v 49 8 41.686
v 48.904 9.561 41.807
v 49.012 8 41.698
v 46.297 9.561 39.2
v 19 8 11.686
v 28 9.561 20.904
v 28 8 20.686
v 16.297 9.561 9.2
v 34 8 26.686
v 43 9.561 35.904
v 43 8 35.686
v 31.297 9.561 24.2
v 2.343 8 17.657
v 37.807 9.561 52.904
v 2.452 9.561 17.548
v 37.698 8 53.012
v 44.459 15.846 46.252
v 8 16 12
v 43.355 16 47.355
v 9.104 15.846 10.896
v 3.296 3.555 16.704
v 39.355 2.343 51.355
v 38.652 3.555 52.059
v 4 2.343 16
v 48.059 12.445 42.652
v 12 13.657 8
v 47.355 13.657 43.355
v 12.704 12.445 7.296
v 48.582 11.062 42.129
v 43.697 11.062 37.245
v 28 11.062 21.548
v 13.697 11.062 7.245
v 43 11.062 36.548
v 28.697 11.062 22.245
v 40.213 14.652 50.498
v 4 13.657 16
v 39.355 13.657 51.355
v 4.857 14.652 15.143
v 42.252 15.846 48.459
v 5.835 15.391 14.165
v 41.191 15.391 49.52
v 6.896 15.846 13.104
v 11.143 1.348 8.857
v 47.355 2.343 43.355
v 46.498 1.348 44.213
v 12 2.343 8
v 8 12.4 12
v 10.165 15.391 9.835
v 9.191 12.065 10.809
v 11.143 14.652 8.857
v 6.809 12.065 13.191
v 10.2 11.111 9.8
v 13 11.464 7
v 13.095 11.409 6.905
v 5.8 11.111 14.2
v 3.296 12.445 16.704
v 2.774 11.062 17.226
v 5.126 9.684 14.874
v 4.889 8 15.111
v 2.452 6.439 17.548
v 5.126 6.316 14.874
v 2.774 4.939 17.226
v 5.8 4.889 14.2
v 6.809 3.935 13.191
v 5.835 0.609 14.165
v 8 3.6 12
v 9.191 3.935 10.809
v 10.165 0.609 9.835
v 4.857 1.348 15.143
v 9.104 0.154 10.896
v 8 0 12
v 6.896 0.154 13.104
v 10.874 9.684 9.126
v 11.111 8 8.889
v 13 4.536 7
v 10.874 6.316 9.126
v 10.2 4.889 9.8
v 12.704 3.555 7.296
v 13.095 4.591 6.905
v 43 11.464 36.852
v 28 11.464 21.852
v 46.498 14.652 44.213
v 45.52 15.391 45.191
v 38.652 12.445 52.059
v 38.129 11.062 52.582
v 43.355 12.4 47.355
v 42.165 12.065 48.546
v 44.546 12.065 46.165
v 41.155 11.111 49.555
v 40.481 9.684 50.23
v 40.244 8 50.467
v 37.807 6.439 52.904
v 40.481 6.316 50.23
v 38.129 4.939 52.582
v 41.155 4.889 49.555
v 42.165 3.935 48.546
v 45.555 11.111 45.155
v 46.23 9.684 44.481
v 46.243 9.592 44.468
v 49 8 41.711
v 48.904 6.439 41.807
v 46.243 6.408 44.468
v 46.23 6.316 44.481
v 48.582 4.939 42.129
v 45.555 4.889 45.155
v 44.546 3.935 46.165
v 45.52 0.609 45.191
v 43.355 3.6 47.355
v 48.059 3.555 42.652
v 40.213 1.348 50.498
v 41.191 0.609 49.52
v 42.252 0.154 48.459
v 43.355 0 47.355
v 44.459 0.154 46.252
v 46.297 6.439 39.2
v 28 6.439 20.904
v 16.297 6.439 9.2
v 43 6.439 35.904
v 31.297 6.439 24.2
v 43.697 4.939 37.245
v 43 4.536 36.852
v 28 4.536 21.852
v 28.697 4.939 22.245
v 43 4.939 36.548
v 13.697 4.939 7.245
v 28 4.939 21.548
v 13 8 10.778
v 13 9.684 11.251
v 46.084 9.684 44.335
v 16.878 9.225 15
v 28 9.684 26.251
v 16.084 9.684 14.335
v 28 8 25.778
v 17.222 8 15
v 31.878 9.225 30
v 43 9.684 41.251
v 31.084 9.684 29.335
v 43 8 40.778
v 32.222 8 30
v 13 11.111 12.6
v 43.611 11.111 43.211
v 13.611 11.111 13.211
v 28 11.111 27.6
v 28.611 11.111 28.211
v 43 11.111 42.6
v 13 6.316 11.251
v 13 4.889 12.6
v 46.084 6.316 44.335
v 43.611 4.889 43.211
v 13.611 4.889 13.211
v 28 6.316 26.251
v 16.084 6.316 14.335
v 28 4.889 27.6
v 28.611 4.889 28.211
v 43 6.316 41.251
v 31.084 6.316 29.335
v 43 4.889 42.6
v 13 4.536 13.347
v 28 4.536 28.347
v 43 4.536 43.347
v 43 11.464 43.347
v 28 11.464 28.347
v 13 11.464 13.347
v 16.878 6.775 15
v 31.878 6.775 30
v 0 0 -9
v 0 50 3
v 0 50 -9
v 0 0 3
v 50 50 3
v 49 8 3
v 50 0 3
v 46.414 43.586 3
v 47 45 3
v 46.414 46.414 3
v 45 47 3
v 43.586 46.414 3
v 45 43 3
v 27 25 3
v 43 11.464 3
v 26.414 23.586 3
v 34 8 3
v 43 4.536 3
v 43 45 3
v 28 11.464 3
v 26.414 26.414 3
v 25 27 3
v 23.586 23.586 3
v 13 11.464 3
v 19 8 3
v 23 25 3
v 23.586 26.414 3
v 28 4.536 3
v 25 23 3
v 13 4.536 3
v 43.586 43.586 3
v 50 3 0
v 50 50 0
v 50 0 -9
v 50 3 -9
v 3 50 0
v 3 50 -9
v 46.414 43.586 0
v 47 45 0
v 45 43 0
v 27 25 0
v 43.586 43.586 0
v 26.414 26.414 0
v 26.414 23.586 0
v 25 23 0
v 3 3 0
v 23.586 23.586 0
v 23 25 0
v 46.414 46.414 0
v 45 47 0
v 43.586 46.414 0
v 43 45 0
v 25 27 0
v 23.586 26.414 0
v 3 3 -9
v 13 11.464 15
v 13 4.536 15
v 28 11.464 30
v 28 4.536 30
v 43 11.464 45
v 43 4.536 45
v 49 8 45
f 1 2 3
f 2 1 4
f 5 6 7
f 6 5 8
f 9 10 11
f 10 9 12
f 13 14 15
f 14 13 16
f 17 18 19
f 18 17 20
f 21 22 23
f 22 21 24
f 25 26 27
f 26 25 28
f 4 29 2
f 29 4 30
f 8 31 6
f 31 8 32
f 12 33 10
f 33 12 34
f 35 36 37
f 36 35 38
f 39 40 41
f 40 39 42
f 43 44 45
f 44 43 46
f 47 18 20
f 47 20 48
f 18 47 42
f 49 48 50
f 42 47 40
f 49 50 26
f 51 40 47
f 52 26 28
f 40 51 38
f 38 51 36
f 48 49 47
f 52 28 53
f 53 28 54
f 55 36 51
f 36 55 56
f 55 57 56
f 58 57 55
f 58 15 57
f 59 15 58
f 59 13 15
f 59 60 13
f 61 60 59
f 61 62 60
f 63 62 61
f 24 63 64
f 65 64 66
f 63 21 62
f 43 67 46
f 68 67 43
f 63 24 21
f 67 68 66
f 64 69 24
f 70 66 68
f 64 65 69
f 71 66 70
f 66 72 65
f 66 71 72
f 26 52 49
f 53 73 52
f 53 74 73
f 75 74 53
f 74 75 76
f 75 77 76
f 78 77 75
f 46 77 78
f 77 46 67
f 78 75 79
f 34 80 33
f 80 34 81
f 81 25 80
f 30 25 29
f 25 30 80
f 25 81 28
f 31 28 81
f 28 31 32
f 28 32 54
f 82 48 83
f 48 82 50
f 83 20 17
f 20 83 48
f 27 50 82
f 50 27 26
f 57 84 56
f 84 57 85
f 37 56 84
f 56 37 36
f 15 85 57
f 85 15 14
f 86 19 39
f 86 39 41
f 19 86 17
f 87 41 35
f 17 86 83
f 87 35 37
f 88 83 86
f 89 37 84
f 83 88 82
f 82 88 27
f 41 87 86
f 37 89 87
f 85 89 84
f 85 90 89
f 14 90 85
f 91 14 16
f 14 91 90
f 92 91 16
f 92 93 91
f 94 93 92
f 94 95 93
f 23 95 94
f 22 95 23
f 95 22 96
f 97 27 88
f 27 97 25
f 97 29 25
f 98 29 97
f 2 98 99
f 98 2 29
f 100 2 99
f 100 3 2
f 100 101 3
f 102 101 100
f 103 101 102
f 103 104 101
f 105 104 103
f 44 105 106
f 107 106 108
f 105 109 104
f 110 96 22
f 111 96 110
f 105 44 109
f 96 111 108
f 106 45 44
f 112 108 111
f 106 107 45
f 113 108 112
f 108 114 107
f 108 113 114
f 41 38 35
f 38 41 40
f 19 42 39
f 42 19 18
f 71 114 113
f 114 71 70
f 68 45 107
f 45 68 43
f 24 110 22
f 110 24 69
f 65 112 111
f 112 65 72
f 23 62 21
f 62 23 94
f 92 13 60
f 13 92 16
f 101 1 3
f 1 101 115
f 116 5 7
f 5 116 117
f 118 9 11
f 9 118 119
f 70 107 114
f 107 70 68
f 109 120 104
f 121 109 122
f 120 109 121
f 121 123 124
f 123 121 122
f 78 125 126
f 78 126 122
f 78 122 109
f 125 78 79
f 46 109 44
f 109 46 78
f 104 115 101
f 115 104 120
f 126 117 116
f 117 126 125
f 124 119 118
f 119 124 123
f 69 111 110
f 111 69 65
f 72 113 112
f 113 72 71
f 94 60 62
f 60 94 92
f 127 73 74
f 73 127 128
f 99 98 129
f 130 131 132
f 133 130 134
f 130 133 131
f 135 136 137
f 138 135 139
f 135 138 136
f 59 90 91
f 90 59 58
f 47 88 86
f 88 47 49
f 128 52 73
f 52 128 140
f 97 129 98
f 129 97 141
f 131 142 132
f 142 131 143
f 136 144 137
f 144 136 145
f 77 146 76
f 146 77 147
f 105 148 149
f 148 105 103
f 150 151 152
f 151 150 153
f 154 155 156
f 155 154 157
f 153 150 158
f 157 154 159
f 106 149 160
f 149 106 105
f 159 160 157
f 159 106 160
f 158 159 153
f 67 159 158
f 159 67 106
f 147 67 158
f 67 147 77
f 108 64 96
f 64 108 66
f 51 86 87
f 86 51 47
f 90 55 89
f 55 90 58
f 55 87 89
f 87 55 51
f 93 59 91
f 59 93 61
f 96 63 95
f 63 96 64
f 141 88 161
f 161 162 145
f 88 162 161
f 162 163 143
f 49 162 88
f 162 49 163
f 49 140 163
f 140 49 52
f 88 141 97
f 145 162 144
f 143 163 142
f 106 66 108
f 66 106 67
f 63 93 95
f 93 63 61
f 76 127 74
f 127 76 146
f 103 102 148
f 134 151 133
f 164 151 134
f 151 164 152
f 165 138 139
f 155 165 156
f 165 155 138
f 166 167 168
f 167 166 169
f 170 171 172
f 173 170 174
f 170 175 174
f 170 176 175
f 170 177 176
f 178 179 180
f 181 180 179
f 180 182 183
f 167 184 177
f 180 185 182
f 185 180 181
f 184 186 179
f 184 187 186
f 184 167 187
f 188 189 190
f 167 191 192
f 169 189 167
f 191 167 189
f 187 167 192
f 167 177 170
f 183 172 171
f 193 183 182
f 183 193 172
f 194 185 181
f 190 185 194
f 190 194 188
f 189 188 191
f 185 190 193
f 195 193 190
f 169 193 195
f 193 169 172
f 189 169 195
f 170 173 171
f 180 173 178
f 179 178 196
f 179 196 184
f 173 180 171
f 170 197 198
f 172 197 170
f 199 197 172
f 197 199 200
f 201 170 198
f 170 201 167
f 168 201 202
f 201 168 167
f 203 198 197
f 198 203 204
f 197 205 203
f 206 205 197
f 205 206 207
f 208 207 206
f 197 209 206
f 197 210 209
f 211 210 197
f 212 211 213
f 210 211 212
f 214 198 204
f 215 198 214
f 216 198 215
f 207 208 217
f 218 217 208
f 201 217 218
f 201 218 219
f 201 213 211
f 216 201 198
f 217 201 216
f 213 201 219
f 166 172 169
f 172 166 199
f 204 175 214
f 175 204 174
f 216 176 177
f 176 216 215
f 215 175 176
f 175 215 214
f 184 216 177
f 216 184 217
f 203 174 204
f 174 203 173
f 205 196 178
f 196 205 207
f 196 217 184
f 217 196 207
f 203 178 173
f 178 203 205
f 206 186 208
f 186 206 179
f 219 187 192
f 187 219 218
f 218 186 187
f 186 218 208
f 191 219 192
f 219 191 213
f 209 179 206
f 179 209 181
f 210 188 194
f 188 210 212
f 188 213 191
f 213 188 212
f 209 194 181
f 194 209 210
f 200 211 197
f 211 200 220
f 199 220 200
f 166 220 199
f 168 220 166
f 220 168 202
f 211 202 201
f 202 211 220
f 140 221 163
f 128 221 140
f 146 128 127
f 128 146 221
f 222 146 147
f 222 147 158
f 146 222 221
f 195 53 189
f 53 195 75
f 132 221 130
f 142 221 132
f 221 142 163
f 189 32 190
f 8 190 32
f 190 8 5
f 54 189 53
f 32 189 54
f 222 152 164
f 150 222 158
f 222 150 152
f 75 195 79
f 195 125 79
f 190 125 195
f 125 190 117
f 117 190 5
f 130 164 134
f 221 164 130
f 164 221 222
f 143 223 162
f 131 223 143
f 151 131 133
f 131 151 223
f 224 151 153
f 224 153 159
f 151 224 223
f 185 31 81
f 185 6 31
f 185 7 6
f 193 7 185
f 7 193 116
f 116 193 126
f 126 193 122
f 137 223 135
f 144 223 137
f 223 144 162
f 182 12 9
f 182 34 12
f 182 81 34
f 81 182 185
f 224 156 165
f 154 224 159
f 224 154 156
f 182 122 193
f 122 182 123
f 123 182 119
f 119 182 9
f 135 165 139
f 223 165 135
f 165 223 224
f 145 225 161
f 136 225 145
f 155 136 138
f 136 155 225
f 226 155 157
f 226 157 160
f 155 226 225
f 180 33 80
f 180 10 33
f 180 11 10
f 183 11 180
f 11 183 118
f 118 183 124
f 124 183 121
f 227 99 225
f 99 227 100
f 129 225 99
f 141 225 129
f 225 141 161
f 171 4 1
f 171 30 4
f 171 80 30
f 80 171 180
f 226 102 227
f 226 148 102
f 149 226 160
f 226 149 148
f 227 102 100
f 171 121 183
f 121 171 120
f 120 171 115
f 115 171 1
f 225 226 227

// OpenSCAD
botSideHolder();

bshLength = 50;
Mx = 8;

angleX = 0;
angleY = 45;
sizeXY = 50;
sizeTnk = 3;


module botSideHolder( pX=0, pY=0, pZ=0, rX=0, rY=0, rZ=0, clr="grey")
{
    translate([pX, pY, pZ])
    rotate([rX, rY, rZ])
    color(clr){
        translate([Mx, Mx, sizeTnk*4])
        rotate([angleX, angleY, 0])

        {        
            difference(){
                cylinder(bshLength, Mx, Mx, $fn=Mx*4);
                translate([0,0,-1])
                    cylinder(bshLength+2, Mx/2+0.4, Mx/2+0.4, $fn=Mx*2);
            }//dif
        }//transform
        
        difference(){
        cube([sizeXY, sizeXY, sizeTnk]);
        translate([sizeXY-5, sizeXY-5, -1])
            cylinder(sizeTnk+2, 2, 2, $fn=8);
        translate([sizeXY/2, sizeXY/2, -1])
            cylinder(sizeTnk+2, 2, 2, $fn=8);
        }
        translate([0,0,-sizeTnk*3])
            cube([sizeXY, sizeTnk, sizeTnk*3]);
        
        translate([0,0,-sizeTnk*3])
            cube([sizeTnk, sizeXY, sizeTnk*3]); 
        
        //support
        translate([15, Mx, 0])
            cylinder(15, Mx/2, Mx/2, $fn=3);
        translate([30, Mx, 0])
            cylinder(30, Mx/2, Mx/2, $fn=3);
        translate([45, Mx, 0])
            cylinder(45, Mx/2, Mx/2, $fn=3);
    }//transform
}//module
